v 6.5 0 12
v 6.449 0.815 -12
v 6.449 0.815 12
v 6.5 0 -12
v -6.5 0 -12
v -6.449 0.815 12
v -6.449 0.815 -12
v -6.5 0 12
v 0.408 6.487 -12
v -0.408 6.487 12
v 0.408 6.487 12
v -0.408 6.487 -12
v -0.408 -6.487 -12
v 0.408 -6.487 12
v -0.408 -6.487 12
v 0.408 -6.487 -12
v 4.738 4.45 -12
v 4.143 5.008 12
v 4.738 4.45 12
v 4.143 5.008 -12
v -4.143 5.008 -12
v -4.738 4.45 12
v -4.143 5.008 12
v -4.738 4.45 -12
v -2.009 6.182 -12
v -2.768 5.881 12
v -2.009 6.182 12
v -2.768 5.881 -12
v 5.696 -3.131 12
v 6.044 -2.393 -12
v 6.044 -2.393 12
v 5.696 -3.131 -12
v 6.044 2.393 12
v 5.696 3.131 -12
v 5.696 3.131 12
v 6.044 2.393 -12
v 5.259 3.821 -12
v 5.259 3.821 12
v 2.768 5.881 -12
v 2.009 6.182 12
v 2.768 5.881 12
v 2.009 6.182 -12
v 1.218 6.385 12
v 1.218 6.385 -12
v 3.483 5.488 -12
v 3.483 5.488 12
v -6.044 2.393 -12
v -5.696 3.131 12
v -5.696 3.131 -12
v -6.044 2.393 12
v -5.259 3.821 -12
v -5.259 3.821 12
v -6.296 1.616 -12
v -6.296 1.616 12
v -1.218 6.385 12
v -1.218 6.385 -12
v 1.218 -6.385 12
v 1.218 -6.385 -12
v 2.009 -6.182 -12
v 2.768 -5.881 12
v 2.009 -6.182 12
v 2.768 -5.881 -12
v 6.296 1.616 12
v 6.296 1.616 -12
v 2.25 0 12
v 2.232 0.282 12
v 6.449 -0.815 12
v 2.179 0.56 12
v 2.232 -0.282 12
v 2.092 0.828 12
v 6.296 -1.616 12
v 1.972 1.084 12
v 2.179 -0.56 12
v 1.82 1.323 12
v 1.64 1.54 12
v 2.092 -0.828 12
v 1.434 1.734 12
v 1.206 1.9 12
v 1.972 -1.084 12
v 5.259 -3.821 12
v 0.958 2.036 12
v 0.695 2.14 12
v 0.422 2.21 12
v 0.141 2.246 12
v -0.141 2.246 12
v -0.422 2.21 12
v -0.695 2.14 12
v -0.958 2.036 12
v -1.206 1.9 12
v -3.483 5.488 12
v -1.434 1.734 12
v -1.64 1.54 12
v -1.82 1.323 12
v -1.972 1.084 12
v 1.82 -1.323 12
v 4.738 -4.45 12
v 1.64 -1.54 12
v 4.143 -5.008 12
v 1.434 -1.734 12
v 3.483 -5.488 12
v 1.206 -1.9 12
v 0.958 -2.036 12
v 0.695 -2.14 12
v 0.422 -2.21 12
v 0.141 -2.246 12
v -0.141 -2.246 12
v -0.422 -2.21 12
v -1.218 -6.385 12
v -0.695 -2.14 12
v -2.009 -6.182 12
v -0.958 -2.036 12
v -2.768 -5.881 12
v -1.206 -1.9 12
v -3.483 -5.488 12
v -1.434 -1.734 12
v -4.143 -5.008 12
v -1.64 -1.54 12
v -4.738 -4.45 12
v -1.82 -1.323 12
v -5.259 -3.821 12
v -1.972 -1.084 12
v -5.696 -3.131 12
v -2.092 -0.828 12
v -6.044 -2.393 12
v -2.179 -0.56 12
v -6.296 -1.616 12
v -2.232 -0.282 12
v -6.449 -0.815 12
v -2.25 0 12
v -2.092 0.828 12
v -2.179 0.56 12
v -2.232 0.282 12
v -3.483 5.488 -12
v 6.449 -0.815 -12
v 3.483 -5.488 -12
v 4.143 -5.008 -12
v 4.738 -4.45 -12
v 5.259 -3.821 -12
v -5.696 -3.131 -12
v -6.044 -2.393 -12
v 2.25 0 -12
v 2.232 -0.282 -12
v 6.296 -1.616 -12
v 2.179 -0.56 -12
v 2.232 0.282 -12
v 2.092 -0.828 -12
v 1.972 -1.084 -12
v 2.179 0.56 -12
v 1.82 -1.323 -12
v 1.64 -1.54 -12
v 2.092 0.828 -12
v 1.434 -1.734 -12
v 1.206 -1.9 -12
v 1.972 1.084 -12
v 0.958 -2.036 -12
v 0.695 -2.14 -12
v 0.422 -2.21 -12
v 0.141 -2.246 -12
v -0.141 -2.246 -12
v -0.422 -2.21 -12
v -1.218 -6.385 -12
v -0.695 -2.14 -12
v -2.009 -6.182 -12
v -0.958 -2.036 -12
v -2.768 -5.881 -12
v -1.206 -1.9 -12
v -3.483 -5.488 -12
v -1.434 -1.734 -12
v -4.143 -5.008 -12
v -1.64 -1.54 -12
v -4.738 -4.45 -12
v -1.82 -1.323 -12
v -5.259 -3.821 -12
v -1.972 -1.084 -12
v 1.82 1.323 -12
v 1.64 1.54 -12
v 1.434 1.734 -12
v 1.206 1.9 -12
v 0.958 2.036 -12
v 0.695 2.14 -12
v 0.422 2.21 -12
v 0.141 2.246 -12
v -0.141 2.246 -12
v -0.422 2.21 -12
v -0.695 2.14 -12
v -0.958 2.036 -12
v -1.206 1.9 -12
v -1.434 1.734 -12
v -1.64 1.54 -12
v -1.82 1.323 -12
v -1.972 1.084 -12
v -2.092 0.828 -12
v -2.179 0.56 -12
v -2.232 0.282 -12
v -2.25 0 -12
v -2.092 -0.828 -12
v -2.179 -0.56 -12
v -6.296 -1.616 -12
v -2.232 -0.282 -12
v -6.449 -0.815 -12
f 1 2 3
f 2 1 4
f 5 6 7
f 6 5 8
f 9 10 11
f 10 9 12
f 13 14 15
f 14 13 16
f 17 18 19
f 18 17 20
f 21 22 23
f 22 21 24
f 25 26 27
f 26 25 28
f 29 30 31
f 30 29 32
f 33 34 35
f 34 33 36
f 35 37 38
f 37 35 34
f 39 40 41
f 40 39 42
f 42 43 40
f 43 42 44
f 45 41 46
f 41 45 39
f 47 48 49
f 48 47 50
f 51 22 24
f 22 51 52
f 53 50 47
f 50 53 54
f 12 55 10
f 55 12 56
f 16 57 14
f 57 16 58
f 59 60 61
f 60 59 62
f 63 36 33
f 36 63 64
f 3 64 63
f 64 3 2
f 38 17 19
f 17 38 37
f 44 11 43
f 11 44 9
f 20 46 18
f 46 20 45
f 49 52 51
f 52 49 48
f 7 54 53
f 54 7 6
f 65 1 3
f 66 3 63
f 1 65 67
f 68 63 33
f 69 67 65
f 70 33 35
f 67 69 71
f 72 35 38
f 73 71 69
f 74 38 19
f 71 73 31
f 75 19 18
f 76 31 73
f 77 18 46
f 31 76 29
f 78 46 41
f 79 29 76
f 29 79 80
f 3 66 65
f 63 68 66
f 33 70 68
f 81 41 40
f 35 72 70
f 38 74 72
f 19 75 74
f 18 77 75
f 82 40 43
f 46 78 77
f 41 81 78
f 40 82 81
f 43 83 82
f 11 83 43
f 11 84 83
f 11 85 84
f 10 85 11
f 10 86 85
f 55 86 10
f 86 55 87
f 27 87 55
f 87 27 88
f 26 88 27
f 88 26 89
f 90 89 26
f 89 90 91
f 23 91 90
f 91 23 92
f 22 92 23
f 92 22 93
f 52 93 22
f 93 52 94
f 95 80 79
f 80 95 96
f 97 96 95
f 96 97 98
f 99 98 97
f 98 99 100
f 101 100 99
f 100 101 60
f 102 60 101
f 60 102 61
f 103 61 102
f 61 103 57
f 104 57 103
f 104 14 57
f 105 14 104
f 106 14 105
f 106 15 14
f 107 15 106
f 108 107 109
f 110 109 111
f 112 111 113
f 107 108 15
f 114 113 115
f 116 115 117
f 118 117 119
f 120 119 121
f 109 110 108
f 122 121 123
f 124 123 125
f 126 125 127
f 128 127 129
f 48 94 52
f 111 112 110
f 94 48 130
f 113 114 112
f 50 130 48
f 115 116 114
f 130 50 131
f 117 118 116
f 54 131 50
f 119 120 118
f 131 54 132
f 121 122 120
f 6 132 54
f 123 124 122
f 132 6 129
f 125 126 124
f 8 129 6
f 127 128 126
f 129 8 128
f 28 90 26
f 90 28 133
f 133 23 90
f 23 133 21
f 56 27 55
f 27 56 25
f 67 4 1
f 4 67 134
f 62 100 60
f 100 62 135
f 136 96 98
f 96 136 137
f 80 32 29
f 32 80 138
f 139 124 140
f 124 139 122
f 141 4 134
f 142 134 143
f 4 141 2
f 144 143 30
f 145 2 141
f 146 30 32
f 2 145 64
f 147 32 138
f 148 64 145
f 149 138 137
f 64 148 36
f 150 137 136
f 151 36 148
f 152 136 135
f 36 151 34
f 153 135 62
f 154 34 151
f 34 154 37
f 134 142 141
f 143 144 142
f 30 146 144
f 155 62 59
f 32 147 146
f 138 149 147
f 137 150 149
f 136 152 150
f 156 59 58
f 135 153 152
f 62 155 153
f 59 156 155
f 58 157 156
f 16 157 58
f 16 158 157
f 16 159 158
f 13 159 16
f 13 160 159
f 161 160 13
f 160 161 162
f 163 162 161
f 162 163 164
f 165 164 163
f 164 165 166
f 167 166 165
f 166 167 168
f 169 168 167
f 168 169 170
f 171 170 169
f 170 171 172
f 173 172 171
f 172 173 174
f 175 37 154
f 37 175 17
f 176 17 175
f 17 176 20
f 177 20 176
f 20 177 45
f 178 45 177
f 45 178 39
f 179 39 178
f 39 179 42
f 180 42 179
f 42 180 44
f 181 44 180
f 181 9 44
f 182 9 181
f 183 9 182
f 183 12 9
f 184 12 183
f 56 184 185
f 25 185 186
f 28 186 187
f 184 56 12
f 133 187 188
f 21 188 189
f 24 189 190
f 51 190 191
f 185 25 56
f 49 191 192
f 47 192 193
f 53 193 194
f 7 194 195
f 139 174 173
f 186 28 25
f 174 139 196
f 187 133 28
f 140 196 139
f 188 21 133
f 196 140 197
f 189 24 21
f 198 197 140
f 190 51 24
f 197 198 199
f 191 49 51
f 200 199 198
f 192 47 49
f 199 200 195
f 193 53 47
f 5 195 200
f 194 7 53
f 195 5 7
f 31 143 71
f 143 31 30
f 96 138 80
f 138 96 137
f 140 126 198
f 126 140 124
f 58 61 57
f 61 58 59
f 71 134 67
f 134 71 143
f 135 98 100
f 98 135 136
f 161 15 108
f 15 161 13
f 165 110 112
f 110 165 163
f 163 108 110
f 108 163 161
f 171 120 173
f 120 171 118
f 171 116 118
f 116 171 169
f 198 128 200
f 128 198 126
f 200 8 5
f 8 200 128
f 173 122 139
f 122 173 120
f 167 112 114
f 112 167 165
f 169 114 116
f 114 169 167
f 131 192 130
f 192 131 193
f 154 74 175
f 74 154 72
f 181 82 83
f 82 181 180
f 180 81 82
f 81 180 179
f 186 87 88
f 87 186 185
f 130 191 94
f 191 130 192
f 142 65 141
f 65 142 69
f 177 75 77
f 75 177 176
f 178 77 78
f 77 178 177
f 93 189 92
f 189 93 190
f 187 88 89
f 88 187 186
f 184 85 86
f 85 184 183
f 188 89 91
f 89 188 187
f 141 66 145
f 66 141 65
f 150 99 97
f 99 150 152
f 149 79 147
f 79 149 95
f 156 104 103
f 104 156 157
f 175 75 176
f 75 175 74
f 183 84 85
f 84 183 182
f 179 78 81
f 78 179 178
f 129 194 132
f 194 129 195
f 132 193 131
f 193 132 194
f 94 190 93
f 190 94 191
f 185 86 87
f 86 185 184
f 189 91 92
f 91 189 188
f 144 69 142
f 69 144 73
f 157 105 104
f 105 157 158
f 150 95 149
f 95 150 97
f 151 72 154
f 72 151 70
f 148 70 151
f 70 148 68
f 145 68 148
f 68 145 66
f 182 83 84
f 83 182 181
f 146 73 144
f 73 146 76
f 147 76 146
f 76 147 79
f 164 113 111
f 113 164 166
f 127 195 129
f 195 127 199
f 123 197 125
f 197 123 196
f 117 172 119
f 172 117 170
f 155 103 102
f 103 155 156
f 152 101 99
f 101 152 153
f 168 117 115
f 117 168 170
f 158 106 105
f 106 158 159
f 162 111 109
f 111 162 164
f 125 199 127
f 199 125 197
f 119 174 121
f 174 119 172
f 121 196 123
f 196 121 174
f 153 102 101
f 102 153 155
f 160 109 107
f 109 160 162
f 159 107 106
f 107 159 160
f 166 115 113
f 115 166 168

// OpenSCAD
$fn = 50;


difference() {
	union() {
		translate(v = [0, 0, -12.0000000000]) {
			cylinder(h = 24, r = 6.5000000000);
		}
	}
	union() {
		translate(v = [0, 0, -100.0000000000]) {
			cylinder(h = 200, r = 2.2500000000);
		}
	}
}
